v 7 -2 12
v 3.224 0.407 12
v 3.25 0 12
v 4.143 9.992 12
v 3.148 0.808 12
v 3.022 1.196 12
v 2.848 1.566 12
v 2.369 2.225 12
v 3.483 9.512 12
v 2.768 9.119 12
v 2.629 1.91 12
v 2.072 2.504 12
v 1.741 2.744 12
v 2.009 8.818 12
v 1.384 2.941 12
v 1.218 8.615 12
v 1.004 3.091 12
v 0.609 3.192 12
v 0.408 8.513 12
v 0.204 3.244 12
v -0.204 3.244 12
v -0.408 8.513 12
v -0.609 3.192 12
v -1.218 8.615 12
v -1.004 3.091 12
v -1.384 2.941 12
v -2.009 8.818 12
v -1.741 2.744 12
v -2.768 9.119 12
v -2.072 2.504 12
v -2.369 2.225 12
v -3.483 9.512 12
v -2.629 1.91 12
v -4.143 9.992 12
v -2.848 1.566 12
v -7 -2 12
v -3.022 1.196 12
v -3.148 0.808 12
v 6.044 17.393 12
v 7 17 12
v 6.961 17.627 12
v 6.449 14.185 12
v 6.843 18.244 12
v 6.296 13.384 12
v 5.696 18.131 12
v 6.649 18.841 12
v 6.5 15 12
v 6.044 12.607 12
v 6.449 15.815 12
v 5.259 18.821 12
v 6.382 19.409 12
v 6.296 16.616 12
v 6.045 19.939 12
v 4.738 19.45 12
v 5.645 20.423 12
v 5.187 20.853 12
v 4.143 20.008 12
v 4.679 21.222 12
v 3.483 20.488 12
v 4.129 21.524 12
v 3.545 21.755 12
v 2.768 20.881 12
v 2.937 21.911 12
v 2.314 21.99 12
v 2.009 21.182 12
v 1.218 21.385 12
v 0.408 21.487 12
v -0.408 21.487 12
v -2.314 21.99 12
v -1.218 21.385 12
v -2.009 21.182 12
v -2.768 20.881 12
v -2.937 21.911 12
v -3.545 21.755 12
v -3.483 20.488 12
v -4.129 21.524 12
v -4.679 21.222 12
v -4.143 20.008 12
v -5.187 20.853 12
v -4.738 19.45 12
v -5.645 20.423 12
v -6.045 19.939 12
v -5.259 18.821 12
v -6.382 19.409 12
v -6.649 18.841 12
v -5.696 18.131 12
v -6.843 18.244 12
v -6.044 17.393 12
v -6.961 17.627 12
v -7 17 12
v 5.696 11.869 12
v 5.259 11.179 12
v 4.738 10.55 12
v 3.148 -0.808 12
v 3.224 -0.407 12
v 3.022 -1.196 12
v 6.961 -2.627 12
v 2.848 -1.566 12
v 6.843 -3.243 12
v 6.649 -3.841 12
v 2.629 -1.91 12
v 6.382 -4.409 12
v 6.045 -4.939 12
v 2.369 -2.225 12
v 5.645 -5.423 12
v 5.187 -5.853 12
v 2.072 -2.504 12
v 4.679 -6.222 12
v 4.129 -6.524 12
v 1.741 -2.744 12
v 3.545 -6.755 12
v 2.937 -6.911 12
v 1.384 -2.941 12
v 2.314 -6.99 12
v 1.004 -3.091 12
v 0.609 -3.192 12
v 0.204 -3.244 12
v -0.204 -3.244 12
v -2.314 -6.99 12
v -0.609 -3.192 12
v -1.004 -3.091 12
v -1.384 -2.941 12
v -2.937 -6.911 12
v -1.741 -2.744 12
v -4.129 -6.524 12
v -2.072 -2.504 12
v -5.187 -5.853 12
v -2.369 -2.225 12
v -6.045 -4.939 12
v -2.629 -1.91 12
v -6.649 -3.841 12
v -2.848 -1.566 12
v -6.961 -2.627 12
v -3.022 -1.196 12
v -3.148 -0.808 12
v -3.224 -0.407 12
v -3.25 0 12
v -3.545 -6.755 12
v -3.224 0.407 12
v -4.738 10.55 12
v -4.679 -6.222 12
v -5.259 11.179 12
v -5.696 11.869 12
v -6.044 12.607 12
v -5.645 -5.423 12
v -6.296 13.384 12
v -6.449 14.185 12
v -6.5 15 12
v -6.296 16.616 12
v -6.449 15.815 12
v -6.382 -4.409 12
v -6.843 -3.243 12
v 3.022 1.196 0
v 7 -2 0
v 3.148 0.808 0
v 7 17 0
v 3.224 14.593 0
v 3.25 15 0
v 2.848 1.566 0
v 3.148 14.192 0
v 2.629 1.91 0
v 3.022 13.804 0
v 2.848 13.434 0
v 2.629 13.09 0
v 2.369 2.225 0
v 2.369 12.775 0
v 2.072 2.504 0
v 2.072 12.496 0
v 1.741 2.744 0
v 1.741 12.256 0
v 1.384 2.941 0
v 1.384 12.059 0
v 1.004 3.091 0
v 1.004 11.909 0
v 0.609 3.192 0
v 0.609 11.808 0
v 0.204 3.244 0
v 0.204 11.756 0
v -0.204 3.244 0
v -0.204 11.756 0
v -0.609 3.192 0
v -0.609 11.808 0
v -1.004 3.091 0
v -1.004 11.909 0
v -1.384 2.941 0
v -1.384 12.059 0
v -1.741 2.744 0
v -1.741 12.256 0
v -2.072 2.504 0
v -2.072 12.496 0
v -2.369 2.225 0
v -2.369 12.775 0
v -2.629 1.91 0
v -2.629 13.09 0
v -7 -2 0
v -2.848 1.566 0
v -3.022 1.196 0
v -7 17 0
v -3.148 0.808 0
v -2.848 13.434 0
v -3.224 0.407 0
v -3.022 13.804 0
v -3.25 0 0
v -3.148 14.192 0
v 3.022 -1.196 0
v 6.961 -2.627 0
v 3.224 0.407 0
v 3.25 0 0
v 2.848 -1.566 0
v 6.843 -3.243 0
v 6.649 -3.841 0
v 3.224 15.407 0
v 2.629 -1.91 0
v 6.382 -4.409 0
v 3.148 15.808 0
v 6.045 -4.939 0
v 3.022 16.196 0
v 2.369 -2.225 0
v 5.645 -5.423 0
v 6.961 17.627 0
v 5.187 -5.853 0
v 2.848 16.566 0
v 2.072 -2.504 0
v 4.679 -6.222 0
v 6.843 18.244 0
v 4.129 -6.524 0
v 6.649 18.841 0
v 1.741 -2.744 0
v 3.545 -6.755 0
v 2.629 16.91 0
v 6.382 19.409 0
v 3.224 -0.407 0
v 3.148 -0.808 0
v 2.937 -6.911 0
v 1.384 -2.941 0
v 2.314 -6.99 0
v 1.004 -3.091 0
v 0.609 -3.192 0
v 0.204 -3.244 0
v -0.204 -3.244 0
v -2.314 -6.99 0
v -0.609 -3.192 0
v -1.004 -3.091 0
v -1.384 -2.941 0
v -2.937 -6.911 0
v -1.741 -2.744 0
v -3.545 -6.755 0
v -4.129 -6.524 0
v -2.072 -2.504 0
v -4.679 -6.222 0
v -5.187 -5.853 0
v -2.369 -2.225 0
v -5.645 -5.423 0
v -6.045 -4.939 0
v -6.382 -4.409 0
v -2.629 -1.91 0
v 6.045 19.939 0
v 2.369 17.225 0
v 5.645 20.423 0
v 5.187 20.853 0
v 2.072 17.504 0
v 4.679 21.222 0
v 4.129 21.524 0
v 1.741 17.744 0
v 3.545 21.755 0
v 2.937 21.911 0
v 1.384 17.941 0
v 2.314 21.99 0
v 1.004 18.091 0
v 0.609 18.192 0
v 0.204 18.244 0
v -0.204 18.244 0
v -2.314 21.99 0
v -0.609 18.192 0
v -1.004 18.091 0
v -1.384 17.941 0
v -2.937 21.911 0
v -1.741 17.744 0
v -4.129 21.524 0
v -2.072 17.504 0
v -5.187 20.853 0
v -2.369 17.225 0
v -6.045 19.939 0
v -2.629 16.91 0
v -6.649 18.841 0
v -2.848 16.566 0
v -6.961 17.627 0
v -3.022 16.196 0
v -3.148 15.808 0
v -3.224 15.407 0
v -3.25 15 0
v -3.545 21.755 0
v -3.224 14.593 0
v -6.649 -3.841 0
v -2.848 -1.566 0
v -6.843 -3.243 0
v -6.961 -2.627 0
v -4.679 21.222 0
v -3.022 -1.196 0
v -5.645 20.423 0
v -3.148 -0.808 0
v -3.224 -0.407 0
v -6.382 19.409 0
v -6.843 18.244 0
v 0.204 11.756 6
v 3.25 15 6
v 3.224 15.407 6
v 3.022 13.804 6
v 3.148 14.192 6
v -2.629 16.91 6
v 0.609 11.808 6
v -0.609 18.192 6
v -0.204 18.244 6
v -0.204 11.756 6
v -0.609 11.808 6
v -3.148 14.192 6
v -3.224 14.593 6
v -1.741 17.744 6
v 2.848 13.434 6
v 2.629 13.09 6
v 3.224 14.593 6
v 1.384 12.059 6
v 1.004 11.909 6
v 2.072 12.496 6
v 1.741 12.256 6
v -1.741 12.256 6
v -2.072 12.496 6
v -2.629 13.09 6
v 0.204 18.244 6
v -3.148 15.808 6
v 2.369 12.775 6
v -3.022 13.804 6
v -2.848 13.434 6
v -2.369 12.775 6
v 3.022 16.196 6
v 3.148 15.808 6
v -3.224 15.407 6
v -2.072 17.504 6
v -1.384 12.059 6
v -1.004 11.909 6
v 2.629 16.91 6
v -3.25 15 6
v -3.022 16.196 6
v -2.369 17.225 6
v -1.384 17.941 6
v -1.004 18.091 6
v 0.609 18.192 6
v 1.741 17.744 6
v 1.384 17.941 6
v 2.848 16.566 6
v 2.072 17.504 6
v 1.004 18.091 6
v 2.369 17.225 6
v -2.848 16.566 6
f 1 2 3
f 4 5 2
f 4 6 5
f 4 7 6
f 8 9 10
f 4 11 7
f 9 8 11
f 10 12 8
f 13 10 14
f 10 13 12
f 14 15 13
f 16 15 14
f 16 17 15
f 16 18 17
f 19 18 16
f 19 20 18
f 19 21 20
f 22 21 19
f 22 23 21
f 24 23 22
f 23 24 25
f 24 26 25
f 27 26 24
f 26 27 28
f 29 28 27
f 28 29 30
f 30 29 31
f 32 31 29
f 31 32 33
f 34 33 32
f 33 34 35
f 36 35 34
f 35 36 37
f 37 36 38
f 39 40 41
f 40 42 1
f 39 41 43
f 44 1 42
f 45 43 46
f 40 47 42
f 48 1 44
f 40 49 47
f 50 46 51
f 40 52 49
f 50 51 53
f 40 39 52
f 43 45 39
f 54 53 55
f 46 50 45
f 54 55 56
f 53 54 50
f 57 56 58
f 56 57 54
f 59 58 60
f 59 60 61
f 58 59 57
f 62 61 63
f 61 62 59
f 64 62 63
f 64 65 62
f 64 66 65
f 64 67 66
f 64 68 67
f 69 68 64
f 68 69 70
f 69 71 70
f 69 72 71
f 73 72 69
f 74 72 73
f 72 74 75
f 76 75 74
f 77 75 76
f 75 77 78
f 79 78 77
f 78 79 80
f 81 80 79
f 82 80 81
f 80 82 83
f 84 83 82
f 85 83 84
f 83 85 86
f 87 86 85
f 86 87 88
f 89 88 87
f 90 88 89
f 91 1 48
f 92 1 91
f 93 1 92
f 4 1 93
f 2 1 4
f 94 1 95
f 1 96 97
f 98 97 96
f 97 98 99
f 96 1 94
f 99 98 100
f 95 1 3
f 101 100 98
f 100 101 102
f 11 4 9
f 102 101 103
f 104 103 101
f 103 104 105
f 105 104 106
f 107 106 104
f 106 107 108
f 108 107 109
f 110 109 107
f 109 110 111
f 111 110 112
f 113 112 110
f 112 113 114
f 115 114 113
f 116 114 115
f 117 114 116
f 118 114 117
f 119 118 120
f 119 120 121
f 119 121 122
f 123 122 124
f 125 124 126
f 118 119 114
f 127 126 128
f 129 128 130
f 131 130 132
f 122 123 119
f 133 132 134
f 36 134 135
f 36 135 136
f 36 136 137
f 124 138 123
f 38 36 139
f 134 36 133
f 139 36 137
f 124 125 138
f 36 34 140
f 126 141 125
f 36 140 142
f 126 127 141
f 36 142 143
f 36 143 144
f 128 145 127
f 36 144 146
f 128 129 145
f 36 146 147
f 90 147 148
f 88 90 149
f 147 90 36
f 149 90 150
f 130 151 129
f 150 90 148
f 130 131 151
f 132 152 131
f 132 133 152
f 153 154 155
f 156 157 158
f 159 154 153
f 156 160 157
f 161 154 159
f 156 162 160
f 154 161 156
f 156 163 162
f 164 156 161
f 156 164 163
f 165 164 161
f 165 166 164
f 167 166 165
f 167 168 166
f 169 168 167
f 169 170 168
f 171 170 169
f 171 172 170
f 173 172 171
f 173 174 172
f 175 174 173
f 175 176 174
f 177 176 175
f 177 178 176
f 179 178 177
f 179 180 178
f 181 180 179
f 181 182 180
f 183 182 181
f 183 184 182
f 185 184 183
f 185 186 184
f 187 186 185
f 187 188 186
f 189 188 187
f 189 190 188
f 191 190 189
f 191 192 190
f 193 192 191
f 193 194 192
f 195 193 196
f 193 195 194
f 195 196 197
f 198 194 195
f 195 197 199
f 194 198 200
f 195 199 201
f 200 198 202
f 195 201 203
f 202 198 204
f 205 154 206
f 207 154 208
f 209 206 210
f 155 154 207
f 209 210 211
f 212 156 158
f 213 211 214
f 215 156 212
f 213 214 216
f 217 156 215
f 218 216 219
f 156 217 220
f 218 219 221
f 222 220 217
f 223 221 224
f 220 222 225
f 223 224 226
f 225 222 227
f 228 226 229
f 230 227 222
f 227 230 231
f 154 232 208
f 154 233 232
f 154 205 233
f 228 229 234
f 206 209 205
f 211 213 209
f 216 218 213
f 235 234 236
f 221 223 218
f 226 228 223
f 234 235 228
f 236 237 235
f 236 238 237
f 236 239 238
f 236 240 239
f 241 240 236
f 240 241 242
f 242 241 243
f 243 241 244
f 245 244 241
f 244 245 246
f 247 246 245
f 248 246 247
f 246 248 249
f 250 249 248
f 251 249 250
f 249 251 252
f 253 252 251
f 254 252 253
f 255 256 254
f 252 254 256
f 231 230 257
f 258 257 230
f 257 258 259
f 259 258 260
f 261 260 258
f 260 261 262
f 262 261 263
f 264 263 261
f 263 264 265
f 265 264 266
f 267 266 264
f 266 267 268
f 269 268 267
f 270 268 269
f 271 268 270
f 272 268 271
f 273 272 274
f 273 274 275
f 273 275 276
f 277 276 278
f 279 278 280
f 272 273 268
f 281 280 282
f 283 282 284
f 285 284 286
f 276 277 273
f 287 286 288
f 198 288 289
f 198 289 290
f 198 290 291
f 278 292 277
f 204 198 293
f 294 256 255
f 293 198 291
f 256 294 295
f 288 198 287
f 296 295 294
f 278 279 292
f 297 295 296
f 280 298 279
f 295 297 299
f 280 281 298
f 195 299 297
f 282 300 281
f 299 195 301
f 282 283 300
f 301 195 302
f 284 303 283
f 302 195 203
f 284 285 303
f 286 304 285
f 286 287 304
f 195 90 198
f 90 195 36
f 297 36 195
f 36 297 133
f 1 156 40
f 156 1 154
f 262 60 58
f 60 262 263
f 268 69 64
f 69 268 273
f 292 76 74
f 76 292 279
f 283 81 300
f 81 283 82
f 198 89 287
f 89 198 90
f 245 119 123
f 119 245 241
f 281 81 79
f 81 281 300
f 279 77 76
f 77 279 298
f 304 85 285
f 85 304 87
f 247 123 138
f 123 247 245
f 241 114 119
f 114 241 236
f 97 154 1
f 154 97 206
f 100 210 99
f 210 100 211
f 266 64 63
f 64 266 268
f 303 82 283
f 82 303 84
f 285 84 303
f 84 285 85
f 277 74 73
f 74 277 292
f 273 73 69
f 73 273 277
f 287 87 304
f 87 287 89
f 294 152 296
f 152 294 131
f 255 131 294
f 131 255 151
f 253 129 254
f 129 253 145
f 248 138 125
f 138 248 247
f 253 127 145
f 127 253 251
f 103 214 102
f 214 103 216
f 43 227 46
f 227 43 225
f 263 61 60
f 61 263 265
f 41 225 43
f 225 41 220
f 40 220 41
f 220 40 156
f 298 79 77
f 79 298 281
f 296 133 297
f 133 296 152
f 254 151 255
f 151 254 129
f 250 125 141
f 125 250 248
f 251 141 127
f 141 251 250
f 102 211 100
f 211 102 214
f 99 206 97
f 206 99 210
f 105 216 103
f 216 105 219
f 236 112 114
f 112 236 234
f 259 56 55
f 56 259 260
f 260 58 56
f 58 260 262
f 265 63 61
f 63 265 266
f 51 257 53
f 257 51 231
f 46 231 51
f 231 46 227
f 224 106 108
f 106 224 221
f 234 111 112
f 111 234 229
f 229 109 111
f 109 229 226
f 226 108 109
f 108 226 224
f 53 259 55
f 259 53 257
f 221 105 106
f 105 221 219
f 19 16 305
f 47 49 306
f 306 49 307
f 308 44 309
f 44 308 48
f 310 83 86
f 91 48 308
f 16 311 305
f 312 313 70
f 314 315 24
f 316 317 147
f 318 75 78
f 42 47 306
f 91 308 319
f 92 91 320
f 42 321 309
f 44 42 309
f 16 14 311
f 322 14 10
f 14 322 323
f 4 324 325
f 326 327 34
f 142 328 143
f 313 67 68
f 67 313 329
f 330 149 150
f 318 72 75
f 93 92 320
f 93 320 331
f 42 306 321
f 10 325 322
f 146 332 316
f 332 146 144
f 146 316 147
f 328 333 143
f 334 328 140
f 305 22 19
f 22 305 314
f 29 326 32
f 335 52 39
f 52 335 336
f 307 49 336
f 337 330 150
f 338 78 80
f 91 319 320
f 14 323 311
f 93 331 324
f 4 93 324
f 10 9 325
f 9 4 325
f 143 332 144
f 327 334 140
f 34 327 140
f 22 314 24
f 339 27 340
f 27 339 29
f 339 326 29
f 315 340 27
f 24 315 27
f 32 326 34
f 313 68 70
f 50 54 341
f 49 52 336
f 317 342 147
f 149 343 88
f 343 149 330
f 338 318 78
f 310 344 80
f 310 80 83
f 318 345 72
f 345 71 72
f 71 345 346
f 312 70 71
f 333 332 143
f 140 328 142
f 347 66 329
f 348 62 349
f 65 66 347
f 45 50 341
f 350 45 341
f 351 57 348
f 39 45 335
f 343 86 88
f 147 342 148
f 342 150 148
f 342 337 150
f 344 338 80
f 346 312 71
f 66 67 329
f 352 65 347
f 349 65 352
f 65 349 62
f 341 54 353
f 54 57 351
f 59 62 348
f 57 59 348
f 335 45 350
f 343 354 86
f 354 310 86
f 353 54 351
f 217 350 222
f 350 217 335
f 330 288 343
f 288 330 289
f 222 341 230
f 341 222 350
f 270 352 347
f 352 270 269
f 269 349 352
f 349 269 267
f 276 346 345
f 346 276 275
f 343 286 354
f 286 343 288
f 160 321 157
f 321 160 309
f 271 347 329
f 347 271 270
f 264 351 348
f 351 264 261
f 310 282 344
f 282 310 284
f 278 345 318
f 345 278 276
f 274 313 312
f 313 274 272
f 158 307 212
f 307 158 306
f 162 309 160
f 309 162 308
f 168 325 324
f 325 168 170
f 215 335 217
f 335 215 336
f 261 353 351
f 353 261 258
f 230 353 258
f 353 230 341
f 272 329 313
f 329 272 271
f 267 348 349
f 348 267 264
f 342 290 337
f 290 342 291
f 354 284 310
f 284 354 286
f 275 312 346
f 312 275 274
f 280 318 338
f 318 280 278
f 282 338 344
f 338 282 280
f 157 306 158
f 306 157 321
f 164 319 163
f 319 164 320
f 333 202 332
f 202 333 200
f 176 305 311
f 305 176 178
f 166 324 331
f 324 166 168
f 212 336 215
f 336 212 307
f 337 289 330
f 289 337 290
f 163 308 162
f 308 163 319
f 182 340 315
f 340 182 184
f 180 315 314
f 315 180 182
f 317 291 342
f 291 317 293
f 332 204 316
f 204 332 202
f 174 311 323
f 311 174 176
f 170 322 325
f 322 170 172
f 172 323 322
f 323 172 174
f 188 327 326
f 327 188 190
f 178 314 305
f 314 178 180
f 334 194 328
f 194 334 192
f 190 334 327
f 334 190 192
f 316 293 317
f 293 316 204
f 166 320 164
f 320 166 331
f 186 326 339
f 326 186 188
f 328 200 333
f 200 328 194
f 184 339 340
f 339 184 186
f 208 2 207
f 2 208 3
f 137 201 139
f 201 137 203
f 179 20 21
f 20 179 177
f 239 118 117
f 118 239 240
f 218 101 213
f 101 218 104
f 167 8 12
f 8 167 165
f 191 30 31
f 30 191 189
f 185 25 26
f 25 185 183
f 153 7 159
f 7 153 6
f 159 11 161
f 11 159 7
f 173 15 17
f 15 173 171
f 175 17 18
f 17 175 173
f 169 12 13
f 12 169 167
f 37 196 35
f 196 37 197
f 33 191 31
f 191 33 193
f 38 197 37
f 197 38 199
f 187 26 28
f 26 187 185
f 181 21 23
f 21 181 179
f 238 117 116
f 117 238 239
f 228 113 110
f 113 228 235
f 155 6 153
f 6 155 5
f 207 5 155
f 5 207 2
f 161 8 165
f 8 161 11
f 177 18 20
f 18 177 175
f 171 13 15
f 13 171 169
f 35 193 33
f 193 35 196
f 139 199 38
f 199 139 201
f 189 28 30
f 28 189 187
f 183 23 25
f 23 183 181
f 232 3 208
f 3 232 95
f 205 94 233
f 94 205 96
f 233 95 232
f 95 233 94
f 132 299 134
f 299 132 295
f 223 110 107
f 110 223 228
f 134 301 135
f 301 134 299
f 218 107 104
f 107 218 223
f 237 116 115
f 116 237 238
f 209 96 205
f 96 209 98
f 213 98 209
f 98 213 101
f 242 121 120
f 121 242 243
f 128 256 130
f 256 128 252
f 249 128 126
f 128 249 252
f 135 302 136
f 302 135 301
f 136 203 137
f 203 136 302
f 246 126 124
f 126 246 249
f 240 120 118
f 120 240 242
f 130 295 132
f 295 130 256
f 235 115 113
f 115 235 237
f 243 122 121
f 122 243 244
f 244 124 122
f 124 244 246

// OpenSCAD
$fn = 50;


difference() {
	union() {
		cylinder(h = 12, r = 7.0000000000);
		translate(v = [0.0000000000, 7.5000000000, 0]) {
			hull() {
				translate(v = [-2.0000000000, 9.5000000000, 0]) {
					cylinder(h = 12, r = 5);
				}
				translate(v = [2.0000000000, 9.5000000000, 0]) {
					cylinder(h = 12, r = 5);
				}
				translate(v = [-2.0000000000, -9.5000000000, 0]) {
					cylinder(h = 12, r = 5);
				}
				translate(v = [2.0000000000, -9.5000000000, 0]) {
					cylinder(h = 12, r = 5);
				}
			}
		}
		translate(v = [0.0000000000, 7.5000000000, 0]) {
			hull() {
				translate(v = [-2.0000000000, 9.5000000000, 0]) {
					cylinder(h = 12, r = 5);
				}
				translate(v = [2.0000000000, 9.5000000000, 0]) {
					cylinder(h = 12, r = 5);
				}
				translate(v = [-2.0000000000, -9.5000000000, 0]) {
					cylinder(h = 12, r = 5);
				}
				translate(v = [2.0000000000, -9.5000000000, 0]) {
					cylinder(h = 12, r = 5);
				}
			}
		}
	}
	union() {
		translate(v = [0.0000000000, 15.0000000000, 12]) {
			rotate(a = [0, 0, 0]) {
				difference() {
					union() {
						#translate(v = [0, 0, -12.0000000000]) {
							cylinder(h = 12, r = 2.2500000000);
						}
						#translate(v = [0, 0, -6]) {
							cylinder(h = 6, r1 = 3.2500000000, r2 = 6.5000000000);
						}
						#translate(v = [0, 0, -12.0000000000]) {
							cylinder(h = 12, r = 3.2500000000);
						}
						#translate(v = [0, 0, -12.0000000000]) {
							cylinder(h = 12, r = 2.2500000000);
						}
					}
					union();
				}
			}
		}
		translate(v = [0.0000000000, 15.0000000000, 12]) {
			rotate(a = [0, 0, 0]) {
				difference() {
					union() {
						#translate(v = [0, 0, -12.0000000000]) {
							cylinder(h = 12, r = 2.2500000000);
						}
						#translate(v = [0, 0, -6]) {
							cylinder(h = 6, r1 = 3.2500000000, r2 = 6.5000000000);
						}
						#translate(v = [0, 0, -12.0000000000]) {
							cylinder(h = 12, r = 3.2500000000);
						}
						#translate(v = [0, 0, -12.0000000000]) {
							cylinder(h = 12, r = 2.2500000000);
						}
					}
					union();
				}
			}
		}
		translate(v = [0, 0, -100]) {
			cylinder(h = 200, r = 3.2500000000);
		}
		translate(v = [0, 0, -100]) {
			cylinder(h = 200, r = 1.8000000000);
		}
	}
}
